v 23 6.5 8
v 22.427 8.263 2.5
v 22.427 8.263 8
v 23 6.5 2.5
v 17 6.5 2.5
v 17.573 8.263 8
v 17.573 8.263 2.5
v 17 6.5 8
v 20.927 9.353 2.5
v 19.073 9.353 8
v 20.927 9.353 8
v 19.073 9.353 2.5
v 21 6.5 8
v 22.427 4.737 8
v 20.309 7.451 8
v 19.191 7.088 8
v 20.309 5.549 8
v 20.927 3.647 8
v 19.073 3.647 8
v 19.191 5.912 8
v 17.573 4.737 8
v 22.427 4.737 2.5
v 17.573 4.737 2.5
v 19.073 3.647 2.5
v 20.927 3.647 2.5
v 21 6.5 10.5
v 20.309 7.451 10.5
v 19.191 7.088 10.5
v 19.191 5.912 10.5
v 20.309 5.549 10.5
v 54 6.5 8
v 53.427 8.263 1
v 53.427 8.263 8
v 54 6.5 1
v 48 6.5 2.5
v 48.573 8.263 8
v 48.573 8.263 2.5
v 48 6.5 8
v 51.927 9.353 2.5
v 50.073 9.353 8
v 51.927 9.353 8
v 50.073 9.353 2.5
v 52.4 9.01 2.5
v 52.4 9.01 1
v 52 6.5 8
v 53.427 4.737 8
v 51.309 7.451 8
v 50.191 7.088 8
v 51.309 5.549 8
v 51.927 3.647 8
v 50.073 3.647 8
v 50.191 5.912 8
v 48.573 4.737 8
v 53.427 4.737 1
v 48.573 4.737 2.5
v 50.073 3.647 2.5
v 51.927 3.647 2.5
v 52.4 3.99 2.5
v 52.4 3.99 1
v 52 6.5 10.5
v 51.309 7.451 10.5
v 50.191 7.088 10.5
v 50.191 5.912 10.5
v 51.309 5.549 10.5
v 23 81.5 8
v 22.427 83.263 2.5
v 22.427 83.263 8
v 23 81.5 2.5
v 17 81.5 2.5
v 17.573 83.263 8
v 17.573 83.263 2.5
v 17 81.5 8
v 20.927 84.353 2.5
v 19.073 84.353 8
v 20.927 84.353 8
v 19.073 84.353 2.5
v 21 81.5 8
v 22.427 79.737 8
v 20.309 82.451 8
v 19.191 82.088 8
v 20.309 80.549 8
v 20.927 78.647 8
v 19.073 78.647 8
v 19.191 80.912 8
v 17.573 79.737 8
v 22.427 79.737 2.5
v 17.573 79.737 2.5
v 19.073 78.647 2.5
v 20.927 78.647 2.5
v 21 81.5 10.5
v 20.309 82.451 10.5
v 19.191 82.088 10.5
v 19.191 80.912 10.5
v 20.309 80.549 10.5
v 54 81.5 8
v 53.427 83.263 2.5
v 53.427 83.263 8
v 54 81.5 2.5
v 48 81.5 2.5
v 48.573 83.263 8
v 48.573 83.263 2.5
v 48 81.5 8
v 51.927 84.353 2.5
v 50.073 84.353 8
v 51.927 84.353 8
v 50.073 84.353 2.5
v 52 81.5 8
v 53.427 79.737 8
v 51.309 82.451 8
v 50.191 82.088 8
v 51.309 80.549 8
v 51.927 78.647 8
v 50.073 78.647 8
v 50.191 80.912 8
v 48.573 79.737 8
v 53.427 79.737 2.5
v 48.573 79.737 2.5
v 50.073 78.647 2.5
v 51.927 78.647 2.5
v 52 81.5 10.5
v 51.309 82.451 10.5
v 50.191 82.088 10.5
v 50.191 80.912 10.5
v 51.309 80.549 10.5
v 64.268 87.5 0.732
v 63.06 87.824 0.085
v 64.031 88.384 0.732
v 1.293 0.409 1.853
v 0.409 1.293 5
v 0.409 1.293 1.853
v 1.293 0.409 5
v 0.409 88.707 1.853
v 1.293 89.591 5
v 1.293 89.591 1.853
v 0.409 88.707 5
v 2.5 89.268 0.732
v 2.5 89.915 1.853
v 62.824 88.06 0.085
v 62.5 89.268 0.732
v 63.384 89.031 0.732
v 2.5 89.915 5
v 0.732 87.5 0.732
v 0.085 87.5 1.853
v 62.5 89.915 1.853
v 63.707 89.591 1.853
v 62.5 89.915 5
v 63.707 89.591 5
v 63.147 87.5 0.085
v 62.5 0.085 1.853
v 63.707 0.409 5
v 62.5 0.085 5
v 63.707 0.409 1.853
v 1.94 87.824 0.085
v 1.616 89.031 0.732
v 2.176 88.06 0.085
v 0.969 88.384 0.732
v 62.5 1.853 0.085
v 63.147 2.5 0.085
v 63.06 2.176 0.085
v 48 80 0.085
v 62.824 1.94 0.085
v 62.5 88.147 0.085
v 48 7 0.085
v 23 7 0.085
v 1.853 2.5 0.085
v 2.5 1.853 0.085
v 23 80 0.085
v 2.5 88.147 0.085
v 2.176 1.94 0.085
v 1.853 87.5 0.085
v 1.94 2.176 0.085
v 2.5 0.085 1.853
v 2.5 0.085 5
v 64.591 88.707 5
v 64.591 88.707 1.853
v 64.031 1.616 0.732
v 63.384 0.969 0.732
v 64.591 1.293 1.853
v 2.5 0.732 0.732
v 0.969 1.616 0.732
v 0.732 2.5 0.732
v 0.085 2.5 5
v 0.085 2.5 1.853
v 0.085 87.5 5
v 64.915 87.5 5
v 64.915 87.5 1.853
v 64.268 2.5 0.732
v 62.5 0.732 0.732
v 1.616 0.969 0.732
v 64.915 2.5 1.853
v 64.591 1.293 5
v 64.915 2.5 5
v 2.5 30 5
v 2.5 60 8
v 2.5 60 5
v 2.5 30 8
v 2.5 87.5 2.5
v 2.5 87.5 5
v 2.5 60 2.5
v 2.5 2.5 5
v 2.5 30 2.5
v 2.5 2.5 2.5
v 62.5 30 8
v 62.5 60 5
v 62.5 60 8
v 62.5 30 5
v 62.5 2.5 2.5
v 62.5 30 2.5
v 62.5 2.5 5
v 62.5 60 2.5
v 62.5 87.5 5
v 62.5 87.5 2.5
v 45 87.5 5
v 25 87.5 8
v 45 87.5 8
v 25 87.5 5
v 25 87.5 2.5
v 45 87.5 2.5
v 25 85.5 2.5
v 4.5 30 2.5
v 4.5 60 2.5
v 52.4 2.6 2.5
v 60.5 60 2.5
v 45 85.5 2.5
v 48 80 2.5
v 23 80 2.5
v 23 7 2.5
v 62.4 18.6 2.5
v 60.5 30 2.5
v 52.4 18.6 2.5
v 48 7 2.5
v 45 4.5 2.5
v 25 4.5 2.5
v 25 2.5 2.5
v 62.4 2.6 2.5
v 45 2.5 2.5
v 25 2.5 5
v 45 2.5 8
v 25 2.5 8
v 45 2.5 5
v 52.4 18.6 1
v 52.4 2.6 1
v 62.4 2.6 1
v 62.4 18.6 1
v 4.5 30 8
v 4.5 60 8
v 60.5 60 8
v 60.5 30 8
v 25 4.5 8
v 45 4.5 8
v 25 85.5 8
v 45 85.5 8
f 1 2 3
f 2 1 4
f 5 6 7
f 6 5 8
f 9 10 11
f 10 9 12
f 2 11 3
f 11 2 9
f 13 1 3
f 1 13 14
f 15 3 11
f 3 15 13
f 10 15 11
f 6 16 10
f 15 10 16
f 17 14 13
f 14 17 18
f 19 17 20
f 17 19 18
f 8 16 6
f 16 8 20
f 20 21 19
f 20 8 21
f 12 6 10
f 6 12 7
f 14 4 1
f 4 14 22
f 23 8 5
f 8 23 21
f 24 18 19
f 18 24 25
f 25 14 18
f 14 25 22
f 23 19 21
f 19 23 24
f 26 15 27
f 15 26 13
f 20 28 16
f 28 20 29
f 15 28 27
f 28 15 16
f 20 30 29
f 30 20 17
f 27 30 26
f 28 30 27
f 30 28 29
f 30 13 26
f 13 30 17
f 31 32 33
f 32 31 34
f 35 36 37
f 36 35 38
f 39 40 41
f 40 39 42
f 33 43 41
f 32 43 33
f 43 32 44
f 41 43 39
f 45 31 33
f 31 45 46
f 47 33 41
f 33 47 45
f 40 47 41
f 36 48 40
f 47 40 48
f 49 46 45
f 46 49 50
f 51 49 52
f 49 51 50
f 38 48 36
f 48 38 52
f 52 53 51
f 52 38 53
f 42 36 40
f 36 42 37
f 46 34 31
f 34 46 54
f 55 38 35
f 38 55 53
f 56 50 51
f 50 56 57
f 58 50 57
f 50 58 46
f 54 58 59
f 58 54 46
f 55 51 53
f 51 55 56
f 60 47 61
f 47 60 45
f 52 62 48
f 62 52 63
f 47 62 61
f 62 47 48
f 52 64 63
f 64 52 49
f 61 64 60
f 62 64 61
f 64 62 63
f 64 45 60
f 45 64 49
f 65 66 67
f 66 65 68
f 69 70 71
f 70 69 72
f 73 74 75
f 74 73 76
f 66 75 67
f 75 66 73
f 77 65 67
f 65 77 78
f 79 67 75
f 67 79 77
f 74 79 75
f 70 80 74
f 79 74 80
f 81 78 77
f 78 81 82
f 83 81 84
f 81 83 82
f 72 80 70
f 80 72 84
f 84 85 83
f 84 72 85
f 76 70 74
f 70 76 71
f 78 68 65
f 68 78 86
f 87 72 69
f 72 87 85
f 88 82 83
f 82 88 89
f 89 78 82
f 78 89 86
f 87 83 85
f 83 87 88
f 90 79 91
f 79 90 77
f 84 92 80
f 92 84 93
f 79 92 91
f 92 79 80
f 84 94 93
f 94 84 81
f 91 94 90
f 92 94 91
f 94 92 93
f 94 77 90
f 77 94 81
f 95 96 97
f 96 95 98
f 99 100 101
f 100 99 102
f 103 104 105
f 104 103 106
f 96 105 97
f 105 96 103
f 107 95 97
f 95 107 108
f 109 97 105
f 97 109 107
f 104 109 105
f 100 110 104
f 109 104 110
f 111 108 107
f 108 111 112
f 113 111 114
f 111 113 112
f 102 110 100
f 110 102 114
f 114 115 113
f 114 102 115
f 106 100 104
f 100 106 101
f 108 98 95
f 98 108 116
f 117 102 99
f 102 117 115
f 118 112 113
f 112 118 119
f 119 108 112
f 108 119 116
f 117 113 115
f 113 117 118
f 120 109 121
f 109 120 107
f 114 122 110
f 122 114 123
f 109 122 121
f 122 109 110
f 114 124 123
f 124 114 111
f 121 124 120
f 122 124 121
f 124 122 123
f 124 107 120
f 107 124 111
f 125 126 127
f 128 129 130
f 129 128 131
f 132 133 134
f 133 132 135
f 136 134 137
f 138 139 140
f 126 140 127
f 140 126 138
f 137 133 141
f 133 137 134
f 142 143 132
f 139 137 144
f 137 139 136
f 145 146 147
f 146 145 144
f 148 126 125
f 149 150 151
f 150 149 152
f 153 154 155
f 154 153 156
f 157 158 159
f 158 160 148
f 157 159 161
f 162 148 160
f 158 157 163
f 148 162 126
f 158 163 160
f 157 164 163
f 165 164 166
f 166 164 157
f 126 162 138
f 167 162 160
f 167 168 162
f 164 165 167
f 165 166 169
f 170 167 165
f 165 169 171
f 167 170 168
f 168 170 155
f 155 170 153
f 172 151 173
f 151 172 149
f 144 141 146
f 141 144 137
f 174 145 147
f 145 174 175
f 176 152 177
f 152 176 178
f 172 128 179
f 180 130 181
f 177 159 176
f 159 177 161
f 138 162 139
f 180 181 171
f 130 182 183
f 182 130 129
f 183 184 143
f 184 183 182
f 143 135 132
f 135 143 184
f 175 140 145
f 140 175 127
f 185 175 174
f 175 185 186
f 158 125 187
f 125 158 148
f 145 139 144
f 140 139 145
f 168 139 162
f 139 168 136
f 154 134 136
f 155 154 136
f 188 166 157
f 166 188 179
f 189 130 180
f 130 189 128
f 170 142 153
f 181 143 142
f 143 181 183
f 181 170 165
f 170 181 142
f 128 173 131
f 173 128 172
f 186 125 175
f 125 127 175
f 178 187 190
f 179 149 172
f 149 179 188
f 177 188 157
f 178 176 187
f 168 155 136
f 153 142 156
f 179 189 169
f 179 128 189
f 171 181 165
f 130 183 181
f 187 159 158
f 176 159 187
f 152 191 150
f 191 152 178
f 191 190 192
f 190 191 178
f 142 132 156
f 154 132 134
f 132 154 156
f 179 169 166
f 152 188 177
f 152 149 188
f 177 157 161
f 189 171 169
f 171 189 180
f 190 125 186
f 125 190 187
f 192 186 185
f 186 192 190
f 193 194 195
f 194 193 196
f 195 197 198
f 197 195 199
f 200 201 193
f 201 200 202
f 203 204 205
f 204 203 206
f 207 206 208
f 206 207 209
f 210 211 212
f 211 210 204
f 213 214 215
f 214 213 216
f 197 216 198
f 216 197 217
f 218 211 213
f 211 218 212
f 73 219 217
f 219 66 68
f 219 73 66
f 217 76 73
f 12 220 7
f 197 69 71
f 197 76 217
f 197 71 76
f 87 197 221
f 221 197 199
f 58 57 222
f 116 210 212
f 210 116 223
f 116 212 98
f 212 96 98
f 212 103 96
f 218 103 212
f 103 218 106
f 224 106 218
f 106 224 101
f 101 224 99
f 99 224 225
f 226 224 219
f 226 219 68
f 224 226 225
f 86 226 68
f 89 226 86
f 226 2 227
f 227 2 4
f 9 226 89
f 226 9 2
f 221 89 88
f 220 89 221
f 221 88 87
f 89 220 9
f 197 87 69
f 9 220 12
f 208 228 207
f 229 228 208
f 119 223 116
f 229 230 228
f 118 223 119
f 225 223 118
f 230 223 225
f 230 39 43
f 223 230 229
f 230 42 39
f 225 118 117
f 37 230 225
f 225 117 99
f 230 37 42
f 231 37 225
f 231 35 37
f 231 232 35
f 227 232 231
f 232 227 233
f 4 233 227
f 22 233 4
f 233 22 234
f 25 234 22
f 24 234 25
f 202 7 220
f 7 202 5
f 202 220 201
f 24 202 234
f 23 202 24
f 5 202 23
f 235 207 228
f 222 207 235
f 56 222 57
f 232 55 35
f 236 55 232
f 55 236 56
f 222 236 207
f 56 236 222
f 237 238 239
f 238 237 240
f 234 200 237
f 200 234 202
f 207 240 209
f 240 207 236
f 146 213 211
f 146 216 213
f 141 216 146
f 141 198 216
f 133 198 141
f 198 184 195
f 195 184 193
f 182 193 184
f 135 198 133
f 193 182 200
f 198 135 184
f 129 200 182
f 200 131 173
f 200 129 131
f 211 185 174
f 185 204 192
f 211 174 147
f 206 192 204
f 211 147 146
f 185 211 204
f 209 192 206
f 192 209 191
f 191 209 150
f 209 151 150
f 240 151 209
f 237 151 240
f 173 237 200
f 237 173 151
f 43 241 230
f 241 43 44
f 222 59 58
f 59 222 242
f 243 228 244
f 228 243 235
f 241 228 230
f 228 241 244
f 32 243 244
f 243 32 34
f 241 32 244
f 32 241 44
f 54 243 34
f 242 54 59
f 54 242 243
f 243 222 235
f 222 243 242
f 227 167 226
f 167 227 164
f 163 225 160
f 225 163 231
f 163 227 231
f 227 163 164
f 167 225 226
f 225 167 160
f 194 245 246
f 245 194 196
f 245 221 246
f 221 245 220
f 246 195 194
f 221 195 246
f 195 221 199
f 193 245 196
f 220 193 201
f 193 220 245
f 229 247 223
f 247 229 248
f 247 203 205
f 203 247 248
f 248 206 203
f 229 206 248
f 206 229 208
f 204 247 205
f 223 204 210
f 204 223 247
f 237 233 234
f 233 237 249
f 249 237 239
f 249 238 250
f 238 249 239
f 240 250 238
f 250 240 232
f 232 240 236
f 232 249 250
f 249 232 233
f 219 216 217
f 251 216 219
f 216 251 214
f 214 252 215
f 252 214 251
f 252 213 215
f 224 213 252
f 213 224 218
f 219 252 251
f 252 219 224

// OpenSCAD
module cbox(x,y,z,c){       //curved box template
    minkowski(){
cube([x-2*c,y-2*c,z-2*c]);
    translate([c,c,c])
    sphere(r=c,$fn=12);
}
}

module pillar(){                //standoff pillar template
translate([0,0,-3])
    cylinder(r=3,h=7.5);
    translate([0,0,1]);
    cylinder(r=1,h=7);
}


difference(){                   //hollow box
cbox(65,90,50,2.5);
translate([2.5,2.5,2.5])            //hollow interior
    cube([60,85,50]);

translate([-5,-5,5])             //flat top
    cube([120,120,100]);

translate([52.4,2.6,1])
    cube([10,16,10]);            //notch for pot
    
translate([23,7,-1])
    cube([25,73,10]);            //cutout for display
    


}

translate([20,6.5,3.5])           //pillars
pillar();
translate([51,6.5,3.5])
pillar();
translate([20,81.5,3.5])
pillar();
translate([51,81.5,3.5])
pillar();

translate([2.5,30,1])           //catch for body
    cube([2,30,7]);

translate([60.5,30,1])           //catch for body
    cube([2,30,7]);

translate([25,2.5,1])           //catch for body
    cube([20,2,7]);

translate([25,85.5,1])           //catch for body
    cube([20,2,7]);
